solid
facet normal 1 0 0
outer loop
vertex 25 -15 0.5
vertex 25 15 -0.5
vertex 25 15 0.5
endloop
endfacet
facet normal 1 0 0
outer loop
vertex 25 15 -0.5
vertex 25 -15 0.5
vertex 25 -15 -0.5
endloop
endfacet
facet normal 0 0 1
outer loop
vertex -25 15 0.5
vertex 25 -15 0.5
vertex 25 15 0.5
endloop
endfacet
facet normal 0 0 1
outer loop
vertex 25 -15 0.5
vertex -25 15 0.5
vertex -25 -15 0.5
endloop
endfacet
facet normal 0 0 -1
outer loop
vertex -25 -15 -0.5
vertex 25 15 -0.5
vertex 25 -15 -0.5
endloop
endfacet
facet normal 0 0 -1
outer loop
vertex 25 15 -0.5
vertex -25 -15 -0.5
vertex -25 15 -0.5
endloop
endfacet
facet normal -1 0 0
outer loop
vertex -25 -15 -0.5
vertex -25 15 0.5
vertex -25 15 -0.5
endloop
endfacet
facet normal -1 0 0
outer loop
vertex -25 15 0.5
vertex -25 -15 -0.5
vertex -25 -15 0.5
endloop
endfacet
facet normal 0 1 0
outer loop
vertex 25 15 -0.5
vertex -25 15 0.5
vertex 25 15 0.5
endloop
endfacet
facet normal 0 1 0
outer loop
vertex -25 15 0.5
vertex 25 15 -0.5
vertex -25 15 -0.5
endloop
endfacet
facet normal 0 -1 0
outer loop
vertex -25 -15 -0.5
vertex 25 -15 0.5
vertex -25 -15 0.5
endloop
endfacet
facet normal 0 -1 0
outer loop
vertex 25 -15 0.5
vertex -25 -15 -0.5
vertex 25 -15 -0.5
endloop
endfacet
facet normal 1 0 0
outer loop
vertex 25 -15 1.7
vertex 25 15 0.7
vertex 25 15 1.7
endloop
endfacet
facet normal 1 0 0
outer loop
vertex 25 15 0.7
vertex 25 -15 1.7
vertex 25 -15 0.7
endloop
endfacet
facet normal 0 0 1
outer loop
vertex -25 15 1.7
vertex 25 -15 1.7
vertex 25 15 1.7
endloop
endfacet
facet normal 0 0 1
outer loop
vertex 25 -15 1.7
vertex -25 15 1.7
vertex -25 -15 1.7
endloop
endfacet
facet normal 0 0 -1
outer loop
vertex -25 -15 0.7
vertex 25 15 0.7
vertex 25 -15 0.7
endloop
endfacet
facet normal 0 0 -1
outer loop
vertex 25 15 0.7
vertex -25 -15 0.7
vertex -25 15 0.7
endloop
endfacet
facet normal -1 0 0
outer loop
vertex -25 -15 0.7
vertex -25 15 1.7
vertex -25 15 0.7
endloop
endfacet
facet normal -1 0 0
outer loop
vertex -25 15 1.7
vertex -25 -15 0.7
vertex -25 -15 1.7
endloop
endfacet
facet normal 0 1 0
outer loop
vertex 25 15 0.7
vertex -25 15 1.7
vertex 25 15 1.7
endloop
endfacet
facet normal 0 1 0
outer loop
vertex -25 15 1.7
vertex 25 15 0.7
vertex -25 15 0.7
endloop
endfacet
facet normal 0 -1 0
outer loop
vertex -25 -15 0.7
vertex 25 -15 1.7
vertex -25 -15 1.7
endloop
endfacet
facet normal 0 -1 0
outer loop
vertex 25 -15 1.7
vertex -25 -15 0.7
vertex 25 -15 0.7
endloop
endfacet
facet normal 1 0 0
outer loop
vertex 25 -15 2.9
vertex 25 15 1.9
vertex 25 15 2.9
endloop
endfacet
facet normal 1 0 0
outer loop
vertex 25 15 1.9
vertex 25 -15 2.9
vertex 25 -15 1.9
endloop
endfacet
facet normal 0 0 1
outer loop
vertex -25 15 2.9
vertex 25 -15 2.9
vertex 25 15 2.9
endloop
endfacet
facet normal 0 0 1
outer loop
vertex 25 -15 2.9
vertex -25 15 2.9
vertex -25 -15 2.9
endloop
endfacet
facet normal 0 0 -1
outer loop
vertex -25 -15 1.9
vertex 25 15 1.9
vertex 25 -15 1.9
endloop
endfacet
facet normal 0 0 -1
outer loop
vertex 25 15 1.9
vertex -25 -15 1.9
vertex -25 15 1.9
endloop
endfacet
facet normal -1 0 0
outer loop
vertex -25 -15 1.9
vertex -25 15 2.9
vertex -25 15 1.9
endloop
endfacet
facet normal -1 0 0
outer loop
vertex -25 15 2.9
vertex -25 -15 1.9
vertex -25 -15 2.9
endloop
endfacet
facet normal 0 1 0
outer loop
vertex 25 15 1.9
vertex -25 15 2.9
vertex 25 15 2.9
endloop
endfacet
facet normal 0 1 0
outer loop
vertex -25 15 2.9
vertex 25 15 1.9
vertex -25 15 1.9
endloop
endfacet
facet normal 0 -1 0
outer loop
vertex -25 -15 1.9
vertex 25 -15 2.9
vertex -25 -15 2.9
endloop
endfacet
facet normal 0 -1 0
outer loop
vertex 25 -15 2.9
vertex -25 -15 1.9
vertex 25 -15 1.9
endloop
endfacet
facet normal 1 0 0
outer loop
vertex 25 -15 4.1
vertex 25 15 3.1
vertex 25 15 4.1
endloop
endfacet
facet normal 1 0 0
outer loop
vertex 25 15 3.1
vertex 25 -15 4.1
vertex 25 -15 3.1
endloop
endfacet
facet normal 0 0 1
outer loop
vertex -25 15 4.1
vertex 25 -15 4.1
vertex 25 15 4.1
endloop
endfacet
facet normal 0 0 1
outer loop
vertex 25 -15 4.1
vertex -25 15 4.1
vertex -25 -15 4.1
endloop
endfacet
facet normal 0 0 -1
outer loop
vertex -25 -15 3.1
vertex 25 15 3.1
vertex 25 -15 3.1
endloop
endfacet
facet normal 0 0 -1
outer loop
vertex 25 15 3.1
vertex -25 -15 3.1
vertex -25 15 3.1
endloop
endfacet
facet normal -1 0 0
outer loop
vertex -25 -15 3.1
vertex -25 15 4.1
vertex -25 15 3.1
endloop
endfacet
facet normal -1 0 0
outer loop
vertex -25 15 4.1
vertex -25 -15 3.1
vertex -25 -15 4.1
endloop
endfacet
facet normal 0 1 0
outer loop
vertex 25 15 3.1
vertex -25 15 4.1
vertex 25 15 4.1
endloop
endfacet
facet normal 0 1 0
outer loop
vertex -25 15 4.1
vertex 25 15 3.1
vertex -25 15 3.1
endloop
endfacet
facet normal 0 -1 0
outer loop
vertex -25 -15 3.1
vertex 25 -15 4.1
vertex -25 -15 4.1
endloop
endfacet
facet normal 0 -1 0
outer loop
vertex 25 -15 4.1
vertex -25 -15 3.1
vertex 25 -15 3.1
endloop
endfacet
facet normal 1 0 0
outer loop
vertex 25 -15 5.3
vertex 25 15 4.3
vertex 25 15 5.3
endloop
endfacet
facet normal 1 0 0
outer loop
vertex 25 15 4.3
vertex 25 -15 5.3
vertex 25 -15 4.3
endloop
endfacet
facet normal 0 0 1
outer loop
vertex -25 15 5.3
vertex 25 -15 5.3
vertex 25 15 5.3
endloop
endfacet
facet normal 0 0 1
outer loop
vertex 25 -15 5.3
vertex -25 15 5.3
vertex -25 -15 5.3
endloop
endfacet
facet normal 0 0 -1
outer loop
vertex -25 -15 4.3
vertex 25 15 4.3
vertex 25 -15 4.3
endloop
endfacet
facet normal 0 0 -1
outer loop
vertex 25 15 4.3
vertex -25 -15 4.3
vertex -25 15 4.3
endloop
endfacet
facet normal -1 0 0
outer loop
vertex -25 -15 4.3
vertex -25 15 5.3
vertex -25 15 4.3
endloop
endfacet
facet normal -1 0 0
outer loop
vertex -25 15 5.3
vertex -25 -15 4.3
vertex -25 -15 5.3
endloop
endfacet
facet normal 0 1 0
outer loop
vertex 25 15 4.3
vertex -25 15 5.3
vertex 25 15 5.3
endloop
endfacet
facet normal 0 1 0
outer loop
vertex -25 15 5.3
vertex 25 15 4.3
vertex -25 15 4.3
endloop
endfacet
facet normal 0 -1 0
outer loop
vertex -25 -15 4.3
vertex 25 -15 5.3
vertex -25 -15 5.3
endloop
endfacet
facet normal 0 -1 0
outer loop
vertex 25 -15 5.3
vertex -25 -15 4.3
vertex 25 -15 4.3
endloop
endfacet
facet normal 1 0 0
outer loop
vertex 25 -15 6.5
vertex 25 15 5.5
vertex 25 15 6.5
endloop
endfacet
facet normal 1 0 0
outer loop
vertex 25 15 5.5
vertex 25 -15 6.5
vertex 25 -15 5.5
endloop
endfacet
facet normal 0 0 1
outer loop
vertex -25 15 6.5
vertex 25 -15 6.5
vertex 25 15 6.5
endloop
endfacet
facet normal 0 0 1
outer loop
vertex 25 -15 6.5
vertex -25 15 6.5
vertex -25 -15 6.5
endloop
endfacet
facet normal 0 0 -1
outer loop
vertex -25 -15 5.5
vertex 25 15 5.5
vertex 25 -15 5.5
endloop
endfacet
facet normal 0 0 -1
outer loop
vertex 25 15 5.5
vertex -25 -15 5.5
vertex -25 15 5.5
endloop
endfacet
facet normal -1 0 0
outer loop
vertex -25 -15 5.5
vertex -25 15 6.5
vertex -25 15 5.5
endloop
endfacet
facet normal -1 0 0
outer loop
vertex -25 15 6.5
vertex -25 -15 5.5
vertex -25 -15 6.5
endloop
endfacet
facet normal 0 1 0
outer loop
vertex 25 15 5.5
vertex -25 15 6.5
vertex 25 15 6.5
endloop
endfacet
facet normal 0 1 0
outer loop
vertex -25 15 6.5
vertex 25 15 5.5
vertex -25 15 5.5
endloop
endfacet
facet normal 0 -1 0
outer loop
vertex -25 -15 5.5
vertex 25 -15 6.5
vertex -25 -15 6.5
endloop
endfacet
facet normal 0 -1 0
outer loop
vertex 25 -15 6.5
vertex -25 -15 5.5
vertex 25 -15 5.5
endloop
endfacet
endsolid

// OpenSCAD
// Plate dimensions
plate_length = 50;  // Adjust as needed
plate_width = 30;   // Adjust as needed
plate_thickness = 1; // Reduced thickness to match the original model
plate_spacing = 0.2; // Adjusted spacing to match the original model

// Module to create a single plate
module plate() {
    cube([plate_length, plate_width, plate_thickness], center=true);
}

// Generate the required number of plates
for (i = [0:5]) {
    translate([0, 0, i * (plate_thickness + plate_spacing)]) // Adjusted spacing
    plate();
}
